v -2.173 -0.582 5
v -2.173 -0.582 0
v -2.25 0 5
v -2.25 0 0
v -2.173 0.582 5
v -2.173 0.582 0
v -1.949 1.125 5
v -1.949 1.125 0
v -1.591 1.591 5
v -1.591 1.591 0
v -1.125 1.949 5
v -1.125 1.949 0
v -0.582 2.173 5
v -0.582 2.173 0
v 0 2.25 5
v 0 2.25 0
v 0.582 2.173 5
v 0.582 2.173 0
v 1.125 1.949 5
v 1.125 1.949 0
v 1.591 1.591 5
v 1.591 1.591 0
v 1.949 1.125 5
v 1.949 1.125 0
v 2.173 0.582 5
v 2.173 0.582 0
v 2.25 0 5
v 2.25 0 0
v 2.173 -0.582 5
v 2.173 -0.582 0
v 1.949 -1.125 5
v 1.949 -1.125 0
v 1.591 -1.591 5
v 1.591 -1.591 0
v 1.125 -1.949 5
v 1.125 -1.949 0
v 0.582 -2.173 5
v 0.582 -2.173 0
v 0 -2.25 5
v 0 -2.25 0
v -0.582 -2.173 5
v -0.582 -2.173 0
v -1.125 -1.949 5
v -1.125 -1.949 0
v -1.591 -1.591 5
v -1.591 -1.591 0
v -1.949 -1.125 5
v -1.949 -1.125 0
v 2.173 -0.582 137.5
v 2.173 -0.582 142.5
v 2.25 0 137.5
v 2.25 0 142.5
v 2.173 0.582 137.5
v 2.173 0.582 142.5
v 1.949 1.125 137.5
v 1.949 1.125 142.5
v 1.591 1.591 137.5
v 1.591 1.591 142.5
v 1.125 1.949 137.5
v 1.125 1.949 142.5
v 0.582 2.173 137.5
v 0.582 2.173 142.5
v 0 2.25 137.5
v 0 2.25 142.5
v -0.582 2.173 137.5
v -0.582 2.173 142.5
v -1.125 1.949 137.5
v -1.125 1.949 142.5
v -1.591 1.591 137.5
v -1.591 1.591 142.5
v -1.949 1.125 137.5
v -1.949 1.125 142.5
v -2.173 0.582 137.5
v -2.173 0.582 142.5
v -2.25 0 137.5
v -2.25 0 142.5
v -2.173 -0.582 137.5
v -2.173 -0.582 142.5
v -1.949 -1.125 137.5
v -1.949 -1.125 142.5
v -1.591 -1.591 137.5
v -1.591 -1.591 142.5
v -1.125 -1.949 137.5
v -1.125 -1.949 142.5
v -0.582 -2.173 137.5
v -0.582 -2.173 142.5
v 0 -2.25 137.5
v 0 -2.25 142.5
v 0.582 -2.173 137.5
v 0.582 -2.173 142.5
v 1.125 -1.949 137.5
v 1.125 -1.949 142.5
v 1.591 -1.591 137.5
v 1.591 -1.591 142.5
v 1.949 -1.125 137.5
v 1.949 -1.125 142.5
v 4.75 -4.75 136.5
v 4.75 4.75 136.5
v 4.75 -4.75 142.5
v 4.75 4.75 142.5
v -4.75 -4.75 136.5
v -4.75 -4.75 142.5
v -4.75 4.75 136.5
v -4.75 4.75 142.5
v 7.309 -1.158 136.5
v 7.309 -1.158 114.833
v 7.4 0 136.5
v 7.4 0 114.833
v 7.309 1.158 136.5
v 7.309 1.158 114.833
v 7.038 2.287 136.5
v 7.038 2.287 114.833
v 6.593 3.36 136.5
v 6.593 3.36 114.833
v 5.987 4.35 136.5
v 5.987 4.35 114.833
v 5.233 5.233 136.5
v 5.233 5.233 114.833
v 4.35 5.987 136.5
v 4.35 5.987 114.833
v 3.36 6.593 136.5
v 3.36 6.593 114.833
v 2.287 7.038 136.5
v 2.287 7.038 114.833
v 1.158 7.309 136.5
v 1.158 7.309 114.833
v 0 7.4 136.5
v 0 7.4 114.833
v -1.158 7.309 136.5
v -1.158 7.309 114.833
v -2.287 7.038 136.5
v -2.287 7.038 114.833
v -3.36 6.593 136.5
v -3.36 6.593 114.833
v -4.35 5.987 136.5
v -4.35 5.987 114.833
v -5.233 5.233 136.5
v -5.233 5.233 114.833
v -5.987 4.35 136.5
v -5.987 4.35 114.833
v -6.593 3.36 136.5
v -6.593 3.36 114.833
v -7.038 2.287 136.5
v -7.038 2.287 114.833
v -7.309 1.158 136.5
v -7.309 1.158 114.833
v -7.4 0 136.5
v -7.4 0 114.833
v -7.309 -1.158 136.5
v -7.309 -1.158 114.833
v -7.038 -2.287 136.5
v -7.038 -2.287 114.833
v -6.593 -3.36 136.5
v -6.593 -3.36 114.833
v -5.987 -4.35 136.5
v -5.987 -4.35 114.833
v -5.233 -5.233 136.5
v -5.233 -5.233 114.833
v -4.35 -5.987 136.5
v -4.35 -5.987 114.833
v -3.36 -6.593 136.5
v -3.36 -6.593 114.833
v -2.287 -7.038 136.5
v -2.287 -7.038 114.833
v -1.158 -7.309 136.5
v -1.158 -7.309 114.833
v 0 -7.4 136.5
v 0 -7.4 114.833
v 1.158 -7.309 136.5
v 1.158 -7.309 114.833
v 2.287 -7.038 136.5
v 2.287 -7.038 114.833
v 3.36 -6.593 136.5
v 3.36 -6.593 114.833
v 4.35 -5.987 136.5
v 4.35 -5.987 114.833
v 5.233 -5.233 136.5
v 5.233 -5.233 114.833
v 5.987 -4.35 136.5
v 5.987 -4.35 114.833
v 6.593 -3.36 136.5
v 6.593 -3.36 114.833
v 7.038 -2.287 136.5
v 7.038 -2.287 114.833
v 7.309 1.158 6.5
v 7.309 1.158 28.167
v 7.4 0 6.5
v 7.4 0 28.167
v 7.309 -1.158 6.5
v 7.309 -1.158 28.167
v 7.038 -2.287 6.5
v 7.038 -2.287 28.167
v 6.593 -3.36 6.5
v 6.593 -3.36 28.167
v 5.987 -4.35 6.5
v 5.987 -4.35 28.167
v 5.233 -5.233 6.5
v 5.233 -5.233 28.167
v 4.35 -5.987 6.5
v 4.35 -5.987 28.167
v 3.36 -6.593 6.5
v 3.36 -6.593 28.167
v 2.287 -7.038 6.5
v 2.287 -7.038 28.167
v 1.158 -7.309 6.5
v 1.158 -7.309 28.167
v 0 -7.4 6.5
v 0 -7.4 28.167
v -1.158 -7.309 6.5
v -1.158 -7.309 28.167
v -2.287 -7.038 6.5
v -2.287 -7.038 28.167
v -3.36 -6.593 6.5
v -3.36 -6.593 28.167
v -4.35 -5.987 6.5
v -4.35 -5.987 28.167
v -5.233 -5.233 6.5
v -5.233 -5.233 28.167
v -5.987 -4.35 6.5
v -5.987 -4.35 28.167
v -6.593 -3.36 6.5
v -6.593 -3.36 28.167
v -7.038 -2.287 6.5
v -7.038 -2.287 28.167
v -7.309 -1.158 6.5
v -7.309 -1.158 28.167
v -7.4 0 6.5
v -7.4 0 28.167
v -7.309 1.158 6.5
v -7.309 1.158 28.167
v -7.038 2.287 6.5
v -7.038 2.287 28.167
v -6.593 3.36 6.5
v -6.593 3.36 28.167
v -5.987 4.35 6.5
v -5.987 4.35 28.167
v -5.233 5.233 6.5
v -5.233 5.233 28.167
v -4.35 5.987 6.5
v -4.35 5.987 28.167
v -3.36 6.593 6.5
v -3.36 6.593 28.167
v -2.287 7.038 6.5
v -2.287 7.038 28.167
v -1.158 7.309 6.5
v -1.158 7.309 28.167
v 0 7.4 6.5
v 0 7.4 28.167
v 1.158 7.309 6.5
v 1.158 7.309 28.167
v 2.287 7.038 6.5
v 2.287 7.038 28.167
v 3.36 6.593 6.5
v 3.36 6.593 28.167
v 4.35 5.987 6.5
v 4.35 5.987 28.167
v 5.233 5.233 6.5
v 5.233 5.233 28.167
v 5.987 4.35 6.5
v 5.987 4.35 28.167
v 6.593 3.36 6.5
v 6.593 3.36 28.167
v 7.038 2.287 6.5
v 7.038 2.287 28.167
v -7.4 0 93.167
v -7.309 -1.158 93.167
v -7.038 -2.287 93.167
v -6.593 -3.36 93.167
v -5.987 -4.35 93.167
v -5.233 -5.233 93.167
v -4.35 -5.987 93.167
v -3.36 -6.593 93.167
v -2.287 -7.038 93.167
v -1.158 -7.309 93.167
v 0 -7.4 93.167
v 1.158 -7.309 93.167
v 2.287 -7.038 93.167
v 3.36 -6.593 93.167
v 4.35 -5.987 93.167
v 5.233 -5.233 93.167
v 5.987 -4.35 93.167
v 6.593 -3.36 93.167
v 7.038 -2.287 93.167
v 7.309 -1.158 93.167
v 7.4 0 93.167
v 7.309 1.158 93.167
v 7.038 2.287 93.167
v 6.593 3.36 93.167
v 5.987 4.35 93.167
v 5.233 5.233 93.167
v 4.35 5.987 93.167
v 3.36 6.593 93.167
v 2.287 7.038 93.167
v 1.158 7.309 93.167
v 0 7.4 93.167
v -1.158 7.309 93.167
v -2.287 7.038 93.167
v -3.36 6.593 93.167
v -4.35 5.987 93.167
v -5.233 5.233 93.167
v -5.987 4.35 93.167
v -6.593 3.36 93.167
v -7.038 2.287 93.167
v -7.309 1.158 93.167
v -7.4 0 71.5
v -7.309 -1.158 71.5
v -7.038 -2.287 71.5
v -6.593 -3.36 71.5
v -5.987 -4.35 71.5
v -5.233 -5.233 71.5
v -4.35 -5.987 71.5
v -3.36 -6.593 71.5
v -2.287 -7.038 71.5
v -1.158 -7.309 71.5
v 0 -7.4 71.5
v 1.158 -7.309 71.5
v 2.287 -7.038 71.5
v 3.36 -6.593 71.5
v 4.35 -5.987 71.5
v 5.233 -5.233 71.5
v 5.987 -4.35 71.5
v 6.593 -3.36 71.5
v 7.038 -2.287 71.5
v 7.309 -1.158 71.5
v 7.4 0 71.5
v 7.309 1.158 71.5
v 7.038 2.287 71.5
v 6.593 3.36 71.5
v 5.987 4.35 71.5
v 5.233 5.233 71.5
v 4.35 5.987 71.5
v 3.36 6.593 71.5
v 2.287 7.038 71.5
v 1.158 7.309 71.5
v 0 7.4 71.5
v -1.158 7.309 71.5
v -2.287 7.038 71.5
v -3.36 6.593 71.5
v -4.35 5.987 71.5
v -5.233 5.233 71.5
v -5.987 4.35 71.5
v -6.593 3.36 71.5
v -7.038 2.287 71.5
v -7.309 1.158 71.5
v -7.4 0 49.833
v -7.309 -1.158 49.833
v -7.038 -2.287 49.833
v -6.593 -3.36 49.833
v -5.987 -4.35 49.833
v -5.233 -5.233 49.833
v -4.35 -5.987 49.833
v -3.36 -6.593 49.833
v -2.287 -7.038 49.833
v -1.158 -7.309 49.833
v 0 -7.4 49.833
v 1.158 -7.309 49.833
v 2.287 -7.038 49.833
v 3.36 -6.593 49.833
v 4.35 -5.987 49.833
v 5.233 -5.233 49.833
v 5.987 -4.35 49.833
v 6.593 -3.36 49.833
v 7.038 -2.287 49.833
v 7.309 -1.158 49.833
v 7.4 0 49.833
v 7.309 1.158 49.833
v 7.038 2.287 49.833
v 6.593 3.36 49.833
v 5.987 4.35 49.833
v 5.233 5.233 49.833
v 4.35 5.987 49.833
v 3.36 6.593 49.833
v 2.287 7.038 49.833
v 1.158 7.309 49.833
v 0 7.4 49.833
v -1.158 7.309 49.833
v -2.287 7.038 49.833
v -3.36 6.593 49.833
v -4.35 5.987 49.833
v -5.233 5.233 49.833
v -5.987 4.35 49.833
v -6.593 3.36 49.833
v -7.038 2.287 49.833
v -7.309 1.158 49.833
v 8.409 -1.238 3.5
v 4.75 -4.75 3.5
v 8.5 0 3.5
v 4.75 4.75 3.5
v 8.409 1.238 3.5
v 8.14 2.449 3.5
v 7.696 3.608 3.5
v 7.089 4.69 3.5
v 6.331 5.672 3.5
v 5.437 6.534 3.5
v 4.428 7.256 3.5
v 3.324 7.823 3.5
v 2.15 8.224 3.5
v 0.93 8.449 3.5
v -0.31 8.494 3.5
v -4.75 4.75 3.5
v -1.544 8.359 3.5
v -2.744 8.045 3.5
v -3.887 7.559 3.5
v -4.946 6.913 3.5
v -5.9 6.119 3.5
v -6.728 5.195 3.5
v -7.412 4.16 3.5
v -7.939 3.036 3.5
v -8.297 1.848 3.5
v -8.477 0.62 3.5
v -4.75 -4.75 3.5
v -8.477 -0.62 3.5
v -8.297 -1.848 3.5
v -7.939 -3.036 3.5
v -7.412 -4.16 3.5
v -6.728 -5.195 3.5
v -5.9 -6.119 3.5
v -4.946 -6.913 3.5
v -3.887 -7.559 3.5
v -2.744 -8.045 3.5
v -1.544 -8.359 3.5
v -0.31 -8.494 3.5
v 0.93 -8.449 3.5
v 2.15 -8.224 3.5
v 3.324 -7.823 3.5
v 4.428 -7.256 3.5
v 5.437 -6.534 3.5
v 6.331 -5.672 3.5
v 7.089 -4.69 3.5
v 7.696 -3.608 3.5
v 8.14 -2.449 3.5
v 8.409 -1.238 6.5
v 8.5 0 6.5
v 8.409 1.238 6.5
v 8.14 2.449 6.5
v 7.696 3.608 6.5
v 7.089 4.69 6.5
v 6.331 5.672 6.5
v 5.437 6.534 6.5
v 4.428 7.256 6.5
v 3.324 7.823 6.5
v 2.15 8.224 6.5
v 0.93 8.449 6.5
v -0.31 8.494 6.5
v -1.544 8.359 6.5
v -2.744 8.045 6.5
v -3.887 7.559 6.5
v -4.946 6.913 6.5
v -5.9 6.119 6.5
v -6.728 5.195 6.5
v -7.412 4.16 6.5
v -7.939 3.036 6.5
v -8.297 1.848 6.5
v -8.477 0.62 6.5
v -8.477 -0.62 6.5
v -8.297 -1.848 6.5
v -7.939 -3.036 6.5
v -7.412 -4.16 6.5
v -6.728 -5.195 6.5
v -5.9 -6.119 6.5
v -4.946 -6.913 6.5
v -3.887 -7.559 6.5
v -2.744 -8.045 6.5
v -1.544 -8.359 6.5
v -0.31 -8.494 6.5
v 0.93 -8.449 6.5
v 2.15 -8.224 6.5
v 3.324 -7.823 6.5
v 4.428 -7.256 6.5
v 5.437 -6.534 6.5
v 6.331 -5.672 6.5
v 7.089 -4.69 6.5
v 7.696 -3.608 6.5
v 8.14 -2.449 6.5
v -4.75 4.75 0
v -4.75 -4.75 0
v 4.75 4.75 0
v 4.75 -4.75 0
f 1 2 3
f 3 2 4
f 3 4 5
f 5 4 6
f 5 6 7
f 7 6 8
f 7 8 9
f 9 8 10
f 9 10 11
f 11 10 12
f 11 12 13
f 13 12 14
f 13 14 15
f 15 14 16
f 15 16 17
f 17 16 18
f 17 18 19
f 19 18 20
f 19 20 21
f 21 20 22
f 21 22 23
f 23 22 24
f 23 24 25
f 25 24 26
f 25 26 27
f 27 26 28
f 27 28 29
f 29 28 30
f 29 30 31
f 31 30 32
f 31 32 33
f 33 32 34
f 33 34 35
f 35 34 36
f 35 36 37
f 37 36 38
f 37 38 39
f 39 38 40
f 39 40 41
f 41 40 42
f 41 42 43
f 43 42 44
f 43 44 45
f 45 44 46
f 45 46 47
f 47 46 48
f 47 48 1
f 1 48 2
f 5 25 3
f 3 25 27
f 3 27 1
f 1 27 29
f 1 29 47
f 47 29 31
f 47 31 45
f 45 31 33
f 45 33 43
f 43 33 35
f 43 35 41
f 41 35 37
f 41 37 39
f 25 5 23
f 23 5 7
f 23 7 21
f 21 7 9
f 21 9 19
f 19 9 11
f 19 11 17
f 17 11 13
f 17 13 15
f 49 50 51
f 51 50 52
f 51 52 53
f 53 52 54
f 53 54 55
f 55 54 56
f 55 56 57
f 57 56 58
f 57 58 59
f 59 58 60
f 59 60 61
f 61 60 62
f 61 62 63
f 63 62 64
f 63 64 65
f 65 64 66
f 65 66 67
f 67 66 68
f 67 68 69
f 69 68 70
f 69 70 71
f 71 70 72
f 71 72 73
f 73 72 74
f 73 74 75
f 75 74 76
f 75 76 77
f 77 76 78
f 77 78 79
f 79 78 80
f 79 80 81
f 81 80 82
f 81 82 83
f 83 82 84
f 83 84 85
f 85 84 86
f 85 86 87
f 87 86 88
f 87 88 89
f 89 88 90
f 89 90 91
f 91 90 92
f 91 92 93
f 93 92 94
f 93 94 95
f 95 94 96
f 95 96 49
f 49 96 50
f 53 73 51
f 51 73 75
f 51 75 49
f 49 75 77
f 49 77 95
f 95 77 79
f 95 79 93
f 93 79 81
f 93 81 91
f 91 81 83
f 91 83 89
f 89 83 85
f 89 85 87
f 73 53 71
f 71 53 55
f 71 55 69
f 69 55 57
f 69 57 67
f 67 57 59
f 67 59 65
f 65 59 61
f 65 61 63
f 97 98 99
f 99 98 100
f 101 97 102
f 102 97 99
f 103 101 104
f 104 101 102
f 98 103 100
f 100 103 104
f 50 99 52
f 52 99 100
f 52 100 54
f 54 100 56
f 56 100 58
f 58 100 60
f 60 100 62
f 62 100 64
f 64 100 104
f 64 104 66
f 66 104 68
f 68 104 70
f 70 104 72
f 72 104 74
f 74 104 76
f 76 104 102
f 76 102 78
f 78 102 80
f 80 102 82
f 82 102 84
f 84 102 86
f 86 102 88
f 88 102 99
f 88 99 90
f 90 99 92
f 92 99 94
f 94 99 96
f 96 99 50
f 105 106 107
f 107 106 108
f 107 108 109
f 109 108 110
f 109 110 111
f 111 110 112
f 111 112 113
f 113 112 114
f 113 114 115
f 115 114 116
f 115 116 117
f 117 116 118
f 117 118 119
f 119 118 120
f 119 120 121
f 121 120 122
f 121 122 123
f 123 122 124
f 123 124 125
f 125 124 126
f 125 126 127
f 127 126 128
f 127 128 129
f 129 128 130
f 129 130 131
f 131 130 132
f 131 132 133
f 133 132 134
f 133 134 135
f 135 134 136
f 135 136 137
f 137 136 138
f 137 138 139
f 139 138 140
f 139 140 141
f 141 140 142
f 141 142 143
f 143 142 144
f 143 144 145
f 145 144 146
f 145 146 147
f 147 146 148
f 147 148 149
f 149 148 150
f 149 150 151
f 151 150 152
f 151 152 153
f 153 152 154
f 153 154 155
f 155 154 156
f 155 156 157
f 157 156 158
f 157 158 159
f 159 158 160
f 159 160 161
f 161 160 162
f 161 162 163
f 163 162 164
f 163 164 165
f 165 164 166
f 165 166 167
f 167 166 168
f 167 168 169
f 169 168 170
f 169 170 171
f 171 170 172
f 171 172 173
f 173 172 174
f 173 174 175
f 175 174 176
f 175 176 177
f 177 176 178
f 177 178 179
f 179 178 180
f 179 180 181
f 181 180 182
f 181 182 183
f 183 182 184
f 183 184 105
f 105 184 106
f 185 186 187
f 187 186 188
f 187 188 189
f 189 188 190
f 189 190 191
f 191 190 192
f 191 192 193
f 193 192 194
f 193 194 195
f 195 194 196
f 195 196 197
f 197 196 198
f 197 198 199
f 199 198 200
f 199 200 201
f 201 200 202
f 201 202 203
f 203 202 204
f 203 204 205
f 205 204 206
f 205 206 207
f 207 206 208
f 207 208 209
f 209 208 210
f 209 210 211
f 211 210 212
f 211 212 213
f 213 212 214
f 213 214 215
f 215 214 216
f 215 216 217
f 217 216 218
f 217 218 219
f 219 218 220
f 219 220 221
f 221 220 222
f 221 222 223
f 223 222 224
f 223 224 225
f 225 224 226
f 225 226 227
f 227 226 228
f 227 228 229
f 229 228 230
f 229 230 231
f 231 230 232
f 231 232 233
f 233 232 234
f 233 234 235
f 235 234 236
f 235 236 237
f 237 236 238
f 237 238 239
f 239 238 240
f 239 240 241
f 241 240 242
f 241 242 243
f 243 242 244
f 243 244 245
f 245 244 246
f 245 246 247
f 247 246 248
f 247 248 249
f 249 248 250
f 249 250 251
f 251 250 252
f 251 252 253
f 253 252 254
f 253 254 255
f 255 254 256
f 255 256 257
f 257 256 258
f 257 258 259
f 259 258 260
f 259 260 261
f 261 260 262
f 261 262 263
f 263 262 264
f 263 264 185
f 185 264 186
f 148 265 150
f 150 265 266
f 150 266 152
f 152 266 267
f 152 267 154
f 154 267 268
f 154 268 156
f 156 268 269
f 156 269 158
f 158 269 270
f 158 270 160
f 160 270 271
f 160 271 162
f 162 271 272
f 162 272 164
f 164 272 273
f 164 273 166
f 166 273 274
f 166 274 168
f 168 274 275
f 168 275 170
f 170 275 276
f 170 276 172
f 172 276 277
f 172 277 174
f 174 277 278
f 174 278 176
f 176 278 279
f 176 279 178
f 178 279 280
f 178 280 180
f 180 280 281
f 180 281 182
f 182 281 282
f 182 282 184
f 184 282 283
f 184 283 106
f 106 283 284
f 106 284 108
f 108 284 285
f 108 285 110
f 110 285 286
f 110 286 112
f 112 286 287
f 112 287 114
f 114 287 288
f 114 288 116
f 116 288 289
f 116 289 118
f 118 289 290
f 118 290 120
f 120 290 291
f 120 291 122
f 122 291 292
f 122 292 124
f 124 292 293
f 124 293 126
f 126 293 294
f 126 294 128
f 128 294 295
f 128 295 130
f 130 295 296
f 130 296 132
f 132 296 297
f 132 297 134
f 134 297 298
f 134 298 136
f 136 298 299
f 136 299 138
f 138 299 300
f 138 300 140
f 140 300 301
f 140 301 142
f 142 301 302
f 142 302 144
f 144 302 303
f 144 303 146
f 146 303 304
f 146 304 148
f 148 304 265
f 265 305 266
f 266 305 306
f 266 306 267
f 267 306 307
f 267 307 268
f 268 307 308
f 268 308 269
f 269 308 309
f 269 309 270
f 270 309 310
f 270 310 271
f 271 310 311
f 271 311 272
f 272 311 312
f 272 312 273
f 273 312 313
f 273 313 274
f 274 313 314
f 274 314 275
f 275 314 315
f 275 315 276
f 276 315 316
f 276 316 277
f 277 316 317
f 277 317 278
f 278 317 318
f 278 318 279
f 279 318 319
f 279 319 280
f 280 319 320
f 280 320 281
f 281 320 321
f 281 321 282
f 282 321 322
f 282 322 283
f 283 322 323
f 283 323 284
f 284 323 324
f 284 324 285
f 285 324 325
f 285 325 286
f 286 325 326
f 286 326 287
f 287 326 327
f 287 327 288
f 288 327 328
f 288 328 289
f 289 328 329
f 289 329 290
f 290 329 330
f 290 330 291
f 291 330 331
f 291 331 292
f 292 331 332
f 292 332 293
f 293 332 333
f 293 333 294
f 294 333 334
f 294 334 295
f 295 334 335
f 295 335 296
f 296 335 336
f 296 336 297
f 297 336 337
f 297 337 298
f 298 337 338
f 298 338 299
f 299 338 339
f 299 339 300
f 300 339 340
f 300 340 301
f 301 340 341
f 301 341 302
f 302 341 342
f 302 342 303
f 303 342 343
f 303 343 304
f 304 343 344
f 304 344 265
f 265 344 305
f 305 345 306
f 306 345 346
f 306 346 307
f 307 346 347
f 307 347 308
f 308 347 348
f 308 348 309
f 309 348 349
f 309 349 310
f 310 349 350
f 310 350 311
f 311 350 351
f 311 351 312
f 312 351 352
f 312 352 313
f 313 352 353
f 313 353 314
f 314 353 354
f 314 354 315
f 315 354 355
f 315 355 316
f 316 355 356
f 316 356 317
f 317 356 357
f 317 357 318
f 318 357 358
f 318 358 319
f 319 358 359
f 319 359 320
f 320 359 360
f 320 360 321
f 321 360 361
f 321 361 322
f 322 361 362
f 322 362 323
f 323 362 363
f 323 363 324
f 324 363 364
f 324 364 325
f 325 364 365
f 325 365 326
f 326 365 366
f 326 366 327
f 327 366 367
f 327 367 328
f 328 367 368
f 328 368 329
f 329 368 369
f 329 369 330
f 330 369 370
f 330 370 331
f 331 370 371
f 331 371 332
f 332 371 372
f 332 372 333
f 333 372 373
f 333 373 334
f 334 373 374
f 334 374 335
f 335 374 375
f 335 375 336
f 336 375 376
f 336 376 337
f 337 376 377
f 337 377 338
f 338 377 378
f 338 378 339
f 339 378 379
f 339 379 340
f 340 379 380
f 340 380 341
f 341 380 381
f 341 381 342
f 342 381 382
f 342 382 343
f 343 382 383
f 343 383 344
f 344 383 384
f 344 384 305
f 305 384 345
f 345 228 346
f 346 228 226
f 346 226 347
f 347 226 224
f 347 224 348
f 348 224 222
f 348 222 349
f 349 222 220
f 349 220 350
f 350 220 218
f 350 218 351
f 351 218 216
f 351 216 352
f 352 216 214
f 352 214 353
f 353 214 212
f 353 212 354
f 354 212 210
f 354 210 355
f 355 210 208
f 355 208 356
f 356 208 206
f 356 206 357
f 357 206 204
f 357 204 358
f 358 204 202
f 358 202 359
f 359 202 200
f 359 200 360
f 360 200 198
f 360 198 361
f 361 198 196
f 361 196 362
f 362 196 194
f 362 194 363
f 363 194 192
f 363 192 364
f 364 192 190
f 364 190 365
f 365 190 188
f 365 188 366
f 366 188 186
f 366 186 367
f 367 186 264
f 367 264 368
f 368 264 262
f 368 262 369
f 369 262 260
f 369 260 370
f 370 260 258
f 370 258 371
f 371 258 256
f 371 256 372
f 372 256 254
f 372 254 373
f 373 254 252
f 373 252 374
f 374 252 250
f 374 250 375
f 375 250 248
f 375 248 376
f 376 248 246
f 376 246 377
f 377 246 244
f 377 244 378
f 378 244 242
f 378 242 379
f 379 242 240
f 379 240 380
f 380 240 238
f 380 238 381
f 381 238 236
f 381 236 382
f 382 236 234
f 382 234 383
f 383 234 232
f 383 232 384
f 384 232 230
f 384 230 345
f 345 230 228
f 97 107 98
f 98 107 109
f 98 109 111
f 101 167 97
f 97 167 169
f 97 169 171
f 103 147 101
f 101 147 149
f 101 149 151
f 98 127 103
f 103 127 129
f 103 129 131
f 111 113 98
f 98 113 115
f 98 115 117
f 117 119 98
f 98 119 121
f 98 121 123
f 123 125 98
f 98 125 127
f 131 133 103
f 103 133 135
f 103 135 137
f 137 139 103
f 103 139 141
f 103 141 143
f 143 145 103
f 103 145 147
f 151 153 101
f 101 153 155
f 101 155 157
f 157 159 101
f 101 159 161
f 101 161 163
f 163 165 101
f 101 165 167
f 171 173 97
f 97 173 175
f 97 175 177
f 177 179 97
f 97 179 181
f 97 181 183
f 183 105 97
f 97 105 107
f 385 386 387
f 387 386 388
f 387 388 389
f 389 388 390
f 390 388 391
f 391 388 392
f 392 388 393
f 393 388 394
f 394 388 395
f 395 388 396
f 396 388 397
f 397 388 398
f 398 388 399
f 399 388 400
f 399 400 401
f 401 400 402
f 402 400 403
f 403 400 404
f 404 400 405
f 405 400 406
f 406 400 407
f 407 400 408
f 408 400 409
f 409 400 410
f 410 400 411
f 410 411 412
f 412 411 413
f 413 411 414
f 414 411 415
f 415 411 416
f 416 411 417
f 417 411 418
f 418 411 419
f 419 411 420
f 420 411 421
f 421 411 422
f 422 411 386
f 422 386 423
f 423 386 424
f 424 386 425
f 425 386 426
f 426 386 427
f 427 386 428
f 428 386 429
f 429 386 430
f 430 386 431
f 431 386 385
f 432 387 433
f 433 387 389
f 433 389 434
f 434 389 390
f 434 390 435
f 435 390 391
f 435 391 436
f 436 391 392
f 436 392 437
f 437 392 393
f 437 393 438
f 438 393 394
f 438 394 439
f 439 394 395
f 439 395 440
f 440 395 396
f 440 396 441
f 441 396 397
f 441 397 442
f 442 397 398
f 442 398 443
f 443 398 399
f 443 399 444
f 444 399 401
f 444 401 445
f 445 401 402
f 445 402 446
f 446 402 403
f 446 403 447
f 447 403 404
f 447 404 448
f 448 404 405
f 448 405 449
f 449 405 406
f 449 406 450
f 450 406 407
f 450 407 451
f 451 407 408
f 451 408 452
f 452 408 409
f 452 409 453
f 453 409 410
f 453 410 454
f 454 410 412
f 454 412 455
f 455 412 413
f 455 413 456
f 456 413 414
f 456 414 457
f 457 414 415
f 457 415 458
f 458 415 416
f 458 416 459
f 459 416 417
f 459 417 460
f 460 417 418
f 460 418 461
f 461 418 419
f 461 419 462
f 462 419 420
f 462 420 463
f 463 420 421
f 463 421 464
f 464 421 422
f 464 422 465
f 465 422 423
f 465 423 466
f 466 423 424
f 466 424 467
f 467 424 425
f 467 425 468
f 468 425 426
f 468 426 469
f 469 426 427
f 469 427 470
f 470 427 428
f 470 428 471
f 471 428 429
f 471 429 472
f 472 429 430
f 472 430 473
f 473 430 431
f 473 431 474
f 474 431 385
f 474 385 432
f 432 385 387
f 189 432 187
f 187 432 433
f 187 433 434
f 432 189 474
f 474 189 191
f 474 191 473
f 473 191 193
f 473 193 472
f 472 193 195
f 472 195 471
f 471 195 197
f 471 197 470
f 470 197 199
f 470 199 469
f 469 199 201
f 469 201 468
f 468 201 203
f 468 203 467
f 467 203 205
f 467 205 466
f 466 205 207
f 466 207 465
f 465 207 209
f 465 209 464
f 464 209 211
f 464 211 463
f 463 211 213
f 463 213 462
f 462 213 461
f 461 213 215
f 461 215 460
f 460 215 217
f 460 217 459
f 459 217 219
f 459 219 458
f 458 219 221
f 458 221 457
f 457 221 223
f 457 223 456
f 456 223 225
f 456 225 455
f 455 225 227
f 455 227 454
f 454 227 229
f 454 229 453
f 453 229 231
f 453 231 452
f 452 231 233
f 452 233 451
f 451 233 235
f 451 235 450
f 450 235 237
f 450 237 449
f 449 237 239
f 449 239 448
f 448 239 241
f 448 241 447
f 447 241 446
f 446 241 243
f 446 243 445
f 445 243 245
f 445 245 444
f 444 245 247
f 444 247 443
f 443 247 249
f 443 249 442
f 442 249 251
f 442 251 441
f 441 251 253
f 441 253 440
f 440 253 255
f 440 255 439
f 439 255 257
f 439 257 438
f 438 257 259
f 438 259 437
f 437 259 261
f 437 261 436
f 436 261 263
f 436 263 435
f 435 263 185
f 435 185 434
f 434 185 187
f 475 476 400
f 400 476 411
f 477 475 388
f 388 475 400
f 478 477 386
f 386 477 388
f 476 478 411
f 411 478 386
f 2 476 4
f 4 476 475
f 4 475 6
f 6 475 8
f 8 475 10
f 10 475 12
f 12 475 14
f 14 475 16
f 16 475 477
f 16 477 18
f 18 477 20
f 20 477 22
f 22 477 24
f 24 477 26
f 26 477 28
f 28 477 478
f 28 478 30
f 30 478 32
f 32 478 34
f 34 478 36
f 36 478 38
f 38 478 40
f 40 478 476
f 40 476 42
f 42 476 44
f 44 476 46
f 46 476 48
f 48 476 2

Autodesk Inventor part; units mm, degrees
ref_plane "XZ Plane" through (0, 0, 0) normal (0, 1, 0) x (-1, 0, 0)
ref_plane "XY Plane" through (0, 0, 0) normal (0, 0, 1) x (1, 0, 0)
sketch "Skizze1" plane through (0, 0, 0) normal (0, 0, 1) x (1, 0, 0)
  line L0 (-4.75, 4.75) -> (4.75, 4.75)
  line L1 (4.75, 4.75) -> (4.75, -4.75)
  line L2 (4.75, -4.75) -> (-4.75, -4.75)
  line L3 (-4.75, -4.75) -> (-4.75, 4.75)
  line L4 (-4.75, 4.75) -> (4.75, -4.75) construction
  line L5 (4.75, 4.75) -> (-4.75, -4.75) construction
  point P0 (0, 0)
  dimension "d0" = 9.5
  dimension "d1" = 9.5
extrude "Extrusion1" add sketch "Skizze1" along normal blind 3.5
sketch "Skizze2" plane through (0, 0, 3.5) normal (0, 0, 1) x (1, 0, 0)
  circle A0 centre (0, 0) radius 8.5
  dimension "d4" = 17
extrude "Extrusion2" add sketch "Skizze2" along normal blind 3
sketch "Skizze3" plane through (0, 0, 6.5) normal (0, 0, 1) x (1, 0, 0)
  circle A0 centre (0, 0) radius 7.4
  circle A1 centre (0, 0) radius 8.5 projected
  dimension "d7" = 14.8
  dimension "d19" = 1.1
extrude "Extrusion3" add sketch "Skizze3" along normal blind 130 contours A0
sketch "Skizze4" plane through (0, 0, 136.5) normal (0, 0, 1) x (1, 0, 0)
  line L0 (-4.75, -4.75) -> (4.75, -4.75) projected
  line L1 (-4.75, 4.75) -> (4.75, 4.75)
  line L2 (4.75, 4.75) -> (4.75, -4.75)
  line L3 (4.75, -4.75) -> (-4.75, -4.75)
  line L4 (-4.75, -4.75) -> (-4.75, 4.75)
  line L5 (-4.75, 4.75) -> (4.75, -4.75) construction
  line L6 (4.75, 4.75) -> (-4.75, -4.75) construction
  point P0 (0, 0)
  dimension "d10" = 9.5
extrude "Extrusion4" add sketch "Skizze4" along normal blind 6
sketch "Skizze5" plane through (0, 0, 142.5) normal (0, 0, 1) x (1, 0, 0)
  circle A0 centre (0, 0) radius 2.25
  dimension "d13" = 4.5
extrude "Extrusion5" cut sketch "Skizze5" against normal blind 5
sketch "Skizze6" plane through (0, 0, 0) normal (0, 0, -1) x (-1, 0, 0)
  circle A0 centre (0, 0) radius 2.25
  dimension "d16" = 4.5
extrude "Extrusion6" cut sketch "Skizze6" against normal blind 5
properties part number "_3D-Druck"
